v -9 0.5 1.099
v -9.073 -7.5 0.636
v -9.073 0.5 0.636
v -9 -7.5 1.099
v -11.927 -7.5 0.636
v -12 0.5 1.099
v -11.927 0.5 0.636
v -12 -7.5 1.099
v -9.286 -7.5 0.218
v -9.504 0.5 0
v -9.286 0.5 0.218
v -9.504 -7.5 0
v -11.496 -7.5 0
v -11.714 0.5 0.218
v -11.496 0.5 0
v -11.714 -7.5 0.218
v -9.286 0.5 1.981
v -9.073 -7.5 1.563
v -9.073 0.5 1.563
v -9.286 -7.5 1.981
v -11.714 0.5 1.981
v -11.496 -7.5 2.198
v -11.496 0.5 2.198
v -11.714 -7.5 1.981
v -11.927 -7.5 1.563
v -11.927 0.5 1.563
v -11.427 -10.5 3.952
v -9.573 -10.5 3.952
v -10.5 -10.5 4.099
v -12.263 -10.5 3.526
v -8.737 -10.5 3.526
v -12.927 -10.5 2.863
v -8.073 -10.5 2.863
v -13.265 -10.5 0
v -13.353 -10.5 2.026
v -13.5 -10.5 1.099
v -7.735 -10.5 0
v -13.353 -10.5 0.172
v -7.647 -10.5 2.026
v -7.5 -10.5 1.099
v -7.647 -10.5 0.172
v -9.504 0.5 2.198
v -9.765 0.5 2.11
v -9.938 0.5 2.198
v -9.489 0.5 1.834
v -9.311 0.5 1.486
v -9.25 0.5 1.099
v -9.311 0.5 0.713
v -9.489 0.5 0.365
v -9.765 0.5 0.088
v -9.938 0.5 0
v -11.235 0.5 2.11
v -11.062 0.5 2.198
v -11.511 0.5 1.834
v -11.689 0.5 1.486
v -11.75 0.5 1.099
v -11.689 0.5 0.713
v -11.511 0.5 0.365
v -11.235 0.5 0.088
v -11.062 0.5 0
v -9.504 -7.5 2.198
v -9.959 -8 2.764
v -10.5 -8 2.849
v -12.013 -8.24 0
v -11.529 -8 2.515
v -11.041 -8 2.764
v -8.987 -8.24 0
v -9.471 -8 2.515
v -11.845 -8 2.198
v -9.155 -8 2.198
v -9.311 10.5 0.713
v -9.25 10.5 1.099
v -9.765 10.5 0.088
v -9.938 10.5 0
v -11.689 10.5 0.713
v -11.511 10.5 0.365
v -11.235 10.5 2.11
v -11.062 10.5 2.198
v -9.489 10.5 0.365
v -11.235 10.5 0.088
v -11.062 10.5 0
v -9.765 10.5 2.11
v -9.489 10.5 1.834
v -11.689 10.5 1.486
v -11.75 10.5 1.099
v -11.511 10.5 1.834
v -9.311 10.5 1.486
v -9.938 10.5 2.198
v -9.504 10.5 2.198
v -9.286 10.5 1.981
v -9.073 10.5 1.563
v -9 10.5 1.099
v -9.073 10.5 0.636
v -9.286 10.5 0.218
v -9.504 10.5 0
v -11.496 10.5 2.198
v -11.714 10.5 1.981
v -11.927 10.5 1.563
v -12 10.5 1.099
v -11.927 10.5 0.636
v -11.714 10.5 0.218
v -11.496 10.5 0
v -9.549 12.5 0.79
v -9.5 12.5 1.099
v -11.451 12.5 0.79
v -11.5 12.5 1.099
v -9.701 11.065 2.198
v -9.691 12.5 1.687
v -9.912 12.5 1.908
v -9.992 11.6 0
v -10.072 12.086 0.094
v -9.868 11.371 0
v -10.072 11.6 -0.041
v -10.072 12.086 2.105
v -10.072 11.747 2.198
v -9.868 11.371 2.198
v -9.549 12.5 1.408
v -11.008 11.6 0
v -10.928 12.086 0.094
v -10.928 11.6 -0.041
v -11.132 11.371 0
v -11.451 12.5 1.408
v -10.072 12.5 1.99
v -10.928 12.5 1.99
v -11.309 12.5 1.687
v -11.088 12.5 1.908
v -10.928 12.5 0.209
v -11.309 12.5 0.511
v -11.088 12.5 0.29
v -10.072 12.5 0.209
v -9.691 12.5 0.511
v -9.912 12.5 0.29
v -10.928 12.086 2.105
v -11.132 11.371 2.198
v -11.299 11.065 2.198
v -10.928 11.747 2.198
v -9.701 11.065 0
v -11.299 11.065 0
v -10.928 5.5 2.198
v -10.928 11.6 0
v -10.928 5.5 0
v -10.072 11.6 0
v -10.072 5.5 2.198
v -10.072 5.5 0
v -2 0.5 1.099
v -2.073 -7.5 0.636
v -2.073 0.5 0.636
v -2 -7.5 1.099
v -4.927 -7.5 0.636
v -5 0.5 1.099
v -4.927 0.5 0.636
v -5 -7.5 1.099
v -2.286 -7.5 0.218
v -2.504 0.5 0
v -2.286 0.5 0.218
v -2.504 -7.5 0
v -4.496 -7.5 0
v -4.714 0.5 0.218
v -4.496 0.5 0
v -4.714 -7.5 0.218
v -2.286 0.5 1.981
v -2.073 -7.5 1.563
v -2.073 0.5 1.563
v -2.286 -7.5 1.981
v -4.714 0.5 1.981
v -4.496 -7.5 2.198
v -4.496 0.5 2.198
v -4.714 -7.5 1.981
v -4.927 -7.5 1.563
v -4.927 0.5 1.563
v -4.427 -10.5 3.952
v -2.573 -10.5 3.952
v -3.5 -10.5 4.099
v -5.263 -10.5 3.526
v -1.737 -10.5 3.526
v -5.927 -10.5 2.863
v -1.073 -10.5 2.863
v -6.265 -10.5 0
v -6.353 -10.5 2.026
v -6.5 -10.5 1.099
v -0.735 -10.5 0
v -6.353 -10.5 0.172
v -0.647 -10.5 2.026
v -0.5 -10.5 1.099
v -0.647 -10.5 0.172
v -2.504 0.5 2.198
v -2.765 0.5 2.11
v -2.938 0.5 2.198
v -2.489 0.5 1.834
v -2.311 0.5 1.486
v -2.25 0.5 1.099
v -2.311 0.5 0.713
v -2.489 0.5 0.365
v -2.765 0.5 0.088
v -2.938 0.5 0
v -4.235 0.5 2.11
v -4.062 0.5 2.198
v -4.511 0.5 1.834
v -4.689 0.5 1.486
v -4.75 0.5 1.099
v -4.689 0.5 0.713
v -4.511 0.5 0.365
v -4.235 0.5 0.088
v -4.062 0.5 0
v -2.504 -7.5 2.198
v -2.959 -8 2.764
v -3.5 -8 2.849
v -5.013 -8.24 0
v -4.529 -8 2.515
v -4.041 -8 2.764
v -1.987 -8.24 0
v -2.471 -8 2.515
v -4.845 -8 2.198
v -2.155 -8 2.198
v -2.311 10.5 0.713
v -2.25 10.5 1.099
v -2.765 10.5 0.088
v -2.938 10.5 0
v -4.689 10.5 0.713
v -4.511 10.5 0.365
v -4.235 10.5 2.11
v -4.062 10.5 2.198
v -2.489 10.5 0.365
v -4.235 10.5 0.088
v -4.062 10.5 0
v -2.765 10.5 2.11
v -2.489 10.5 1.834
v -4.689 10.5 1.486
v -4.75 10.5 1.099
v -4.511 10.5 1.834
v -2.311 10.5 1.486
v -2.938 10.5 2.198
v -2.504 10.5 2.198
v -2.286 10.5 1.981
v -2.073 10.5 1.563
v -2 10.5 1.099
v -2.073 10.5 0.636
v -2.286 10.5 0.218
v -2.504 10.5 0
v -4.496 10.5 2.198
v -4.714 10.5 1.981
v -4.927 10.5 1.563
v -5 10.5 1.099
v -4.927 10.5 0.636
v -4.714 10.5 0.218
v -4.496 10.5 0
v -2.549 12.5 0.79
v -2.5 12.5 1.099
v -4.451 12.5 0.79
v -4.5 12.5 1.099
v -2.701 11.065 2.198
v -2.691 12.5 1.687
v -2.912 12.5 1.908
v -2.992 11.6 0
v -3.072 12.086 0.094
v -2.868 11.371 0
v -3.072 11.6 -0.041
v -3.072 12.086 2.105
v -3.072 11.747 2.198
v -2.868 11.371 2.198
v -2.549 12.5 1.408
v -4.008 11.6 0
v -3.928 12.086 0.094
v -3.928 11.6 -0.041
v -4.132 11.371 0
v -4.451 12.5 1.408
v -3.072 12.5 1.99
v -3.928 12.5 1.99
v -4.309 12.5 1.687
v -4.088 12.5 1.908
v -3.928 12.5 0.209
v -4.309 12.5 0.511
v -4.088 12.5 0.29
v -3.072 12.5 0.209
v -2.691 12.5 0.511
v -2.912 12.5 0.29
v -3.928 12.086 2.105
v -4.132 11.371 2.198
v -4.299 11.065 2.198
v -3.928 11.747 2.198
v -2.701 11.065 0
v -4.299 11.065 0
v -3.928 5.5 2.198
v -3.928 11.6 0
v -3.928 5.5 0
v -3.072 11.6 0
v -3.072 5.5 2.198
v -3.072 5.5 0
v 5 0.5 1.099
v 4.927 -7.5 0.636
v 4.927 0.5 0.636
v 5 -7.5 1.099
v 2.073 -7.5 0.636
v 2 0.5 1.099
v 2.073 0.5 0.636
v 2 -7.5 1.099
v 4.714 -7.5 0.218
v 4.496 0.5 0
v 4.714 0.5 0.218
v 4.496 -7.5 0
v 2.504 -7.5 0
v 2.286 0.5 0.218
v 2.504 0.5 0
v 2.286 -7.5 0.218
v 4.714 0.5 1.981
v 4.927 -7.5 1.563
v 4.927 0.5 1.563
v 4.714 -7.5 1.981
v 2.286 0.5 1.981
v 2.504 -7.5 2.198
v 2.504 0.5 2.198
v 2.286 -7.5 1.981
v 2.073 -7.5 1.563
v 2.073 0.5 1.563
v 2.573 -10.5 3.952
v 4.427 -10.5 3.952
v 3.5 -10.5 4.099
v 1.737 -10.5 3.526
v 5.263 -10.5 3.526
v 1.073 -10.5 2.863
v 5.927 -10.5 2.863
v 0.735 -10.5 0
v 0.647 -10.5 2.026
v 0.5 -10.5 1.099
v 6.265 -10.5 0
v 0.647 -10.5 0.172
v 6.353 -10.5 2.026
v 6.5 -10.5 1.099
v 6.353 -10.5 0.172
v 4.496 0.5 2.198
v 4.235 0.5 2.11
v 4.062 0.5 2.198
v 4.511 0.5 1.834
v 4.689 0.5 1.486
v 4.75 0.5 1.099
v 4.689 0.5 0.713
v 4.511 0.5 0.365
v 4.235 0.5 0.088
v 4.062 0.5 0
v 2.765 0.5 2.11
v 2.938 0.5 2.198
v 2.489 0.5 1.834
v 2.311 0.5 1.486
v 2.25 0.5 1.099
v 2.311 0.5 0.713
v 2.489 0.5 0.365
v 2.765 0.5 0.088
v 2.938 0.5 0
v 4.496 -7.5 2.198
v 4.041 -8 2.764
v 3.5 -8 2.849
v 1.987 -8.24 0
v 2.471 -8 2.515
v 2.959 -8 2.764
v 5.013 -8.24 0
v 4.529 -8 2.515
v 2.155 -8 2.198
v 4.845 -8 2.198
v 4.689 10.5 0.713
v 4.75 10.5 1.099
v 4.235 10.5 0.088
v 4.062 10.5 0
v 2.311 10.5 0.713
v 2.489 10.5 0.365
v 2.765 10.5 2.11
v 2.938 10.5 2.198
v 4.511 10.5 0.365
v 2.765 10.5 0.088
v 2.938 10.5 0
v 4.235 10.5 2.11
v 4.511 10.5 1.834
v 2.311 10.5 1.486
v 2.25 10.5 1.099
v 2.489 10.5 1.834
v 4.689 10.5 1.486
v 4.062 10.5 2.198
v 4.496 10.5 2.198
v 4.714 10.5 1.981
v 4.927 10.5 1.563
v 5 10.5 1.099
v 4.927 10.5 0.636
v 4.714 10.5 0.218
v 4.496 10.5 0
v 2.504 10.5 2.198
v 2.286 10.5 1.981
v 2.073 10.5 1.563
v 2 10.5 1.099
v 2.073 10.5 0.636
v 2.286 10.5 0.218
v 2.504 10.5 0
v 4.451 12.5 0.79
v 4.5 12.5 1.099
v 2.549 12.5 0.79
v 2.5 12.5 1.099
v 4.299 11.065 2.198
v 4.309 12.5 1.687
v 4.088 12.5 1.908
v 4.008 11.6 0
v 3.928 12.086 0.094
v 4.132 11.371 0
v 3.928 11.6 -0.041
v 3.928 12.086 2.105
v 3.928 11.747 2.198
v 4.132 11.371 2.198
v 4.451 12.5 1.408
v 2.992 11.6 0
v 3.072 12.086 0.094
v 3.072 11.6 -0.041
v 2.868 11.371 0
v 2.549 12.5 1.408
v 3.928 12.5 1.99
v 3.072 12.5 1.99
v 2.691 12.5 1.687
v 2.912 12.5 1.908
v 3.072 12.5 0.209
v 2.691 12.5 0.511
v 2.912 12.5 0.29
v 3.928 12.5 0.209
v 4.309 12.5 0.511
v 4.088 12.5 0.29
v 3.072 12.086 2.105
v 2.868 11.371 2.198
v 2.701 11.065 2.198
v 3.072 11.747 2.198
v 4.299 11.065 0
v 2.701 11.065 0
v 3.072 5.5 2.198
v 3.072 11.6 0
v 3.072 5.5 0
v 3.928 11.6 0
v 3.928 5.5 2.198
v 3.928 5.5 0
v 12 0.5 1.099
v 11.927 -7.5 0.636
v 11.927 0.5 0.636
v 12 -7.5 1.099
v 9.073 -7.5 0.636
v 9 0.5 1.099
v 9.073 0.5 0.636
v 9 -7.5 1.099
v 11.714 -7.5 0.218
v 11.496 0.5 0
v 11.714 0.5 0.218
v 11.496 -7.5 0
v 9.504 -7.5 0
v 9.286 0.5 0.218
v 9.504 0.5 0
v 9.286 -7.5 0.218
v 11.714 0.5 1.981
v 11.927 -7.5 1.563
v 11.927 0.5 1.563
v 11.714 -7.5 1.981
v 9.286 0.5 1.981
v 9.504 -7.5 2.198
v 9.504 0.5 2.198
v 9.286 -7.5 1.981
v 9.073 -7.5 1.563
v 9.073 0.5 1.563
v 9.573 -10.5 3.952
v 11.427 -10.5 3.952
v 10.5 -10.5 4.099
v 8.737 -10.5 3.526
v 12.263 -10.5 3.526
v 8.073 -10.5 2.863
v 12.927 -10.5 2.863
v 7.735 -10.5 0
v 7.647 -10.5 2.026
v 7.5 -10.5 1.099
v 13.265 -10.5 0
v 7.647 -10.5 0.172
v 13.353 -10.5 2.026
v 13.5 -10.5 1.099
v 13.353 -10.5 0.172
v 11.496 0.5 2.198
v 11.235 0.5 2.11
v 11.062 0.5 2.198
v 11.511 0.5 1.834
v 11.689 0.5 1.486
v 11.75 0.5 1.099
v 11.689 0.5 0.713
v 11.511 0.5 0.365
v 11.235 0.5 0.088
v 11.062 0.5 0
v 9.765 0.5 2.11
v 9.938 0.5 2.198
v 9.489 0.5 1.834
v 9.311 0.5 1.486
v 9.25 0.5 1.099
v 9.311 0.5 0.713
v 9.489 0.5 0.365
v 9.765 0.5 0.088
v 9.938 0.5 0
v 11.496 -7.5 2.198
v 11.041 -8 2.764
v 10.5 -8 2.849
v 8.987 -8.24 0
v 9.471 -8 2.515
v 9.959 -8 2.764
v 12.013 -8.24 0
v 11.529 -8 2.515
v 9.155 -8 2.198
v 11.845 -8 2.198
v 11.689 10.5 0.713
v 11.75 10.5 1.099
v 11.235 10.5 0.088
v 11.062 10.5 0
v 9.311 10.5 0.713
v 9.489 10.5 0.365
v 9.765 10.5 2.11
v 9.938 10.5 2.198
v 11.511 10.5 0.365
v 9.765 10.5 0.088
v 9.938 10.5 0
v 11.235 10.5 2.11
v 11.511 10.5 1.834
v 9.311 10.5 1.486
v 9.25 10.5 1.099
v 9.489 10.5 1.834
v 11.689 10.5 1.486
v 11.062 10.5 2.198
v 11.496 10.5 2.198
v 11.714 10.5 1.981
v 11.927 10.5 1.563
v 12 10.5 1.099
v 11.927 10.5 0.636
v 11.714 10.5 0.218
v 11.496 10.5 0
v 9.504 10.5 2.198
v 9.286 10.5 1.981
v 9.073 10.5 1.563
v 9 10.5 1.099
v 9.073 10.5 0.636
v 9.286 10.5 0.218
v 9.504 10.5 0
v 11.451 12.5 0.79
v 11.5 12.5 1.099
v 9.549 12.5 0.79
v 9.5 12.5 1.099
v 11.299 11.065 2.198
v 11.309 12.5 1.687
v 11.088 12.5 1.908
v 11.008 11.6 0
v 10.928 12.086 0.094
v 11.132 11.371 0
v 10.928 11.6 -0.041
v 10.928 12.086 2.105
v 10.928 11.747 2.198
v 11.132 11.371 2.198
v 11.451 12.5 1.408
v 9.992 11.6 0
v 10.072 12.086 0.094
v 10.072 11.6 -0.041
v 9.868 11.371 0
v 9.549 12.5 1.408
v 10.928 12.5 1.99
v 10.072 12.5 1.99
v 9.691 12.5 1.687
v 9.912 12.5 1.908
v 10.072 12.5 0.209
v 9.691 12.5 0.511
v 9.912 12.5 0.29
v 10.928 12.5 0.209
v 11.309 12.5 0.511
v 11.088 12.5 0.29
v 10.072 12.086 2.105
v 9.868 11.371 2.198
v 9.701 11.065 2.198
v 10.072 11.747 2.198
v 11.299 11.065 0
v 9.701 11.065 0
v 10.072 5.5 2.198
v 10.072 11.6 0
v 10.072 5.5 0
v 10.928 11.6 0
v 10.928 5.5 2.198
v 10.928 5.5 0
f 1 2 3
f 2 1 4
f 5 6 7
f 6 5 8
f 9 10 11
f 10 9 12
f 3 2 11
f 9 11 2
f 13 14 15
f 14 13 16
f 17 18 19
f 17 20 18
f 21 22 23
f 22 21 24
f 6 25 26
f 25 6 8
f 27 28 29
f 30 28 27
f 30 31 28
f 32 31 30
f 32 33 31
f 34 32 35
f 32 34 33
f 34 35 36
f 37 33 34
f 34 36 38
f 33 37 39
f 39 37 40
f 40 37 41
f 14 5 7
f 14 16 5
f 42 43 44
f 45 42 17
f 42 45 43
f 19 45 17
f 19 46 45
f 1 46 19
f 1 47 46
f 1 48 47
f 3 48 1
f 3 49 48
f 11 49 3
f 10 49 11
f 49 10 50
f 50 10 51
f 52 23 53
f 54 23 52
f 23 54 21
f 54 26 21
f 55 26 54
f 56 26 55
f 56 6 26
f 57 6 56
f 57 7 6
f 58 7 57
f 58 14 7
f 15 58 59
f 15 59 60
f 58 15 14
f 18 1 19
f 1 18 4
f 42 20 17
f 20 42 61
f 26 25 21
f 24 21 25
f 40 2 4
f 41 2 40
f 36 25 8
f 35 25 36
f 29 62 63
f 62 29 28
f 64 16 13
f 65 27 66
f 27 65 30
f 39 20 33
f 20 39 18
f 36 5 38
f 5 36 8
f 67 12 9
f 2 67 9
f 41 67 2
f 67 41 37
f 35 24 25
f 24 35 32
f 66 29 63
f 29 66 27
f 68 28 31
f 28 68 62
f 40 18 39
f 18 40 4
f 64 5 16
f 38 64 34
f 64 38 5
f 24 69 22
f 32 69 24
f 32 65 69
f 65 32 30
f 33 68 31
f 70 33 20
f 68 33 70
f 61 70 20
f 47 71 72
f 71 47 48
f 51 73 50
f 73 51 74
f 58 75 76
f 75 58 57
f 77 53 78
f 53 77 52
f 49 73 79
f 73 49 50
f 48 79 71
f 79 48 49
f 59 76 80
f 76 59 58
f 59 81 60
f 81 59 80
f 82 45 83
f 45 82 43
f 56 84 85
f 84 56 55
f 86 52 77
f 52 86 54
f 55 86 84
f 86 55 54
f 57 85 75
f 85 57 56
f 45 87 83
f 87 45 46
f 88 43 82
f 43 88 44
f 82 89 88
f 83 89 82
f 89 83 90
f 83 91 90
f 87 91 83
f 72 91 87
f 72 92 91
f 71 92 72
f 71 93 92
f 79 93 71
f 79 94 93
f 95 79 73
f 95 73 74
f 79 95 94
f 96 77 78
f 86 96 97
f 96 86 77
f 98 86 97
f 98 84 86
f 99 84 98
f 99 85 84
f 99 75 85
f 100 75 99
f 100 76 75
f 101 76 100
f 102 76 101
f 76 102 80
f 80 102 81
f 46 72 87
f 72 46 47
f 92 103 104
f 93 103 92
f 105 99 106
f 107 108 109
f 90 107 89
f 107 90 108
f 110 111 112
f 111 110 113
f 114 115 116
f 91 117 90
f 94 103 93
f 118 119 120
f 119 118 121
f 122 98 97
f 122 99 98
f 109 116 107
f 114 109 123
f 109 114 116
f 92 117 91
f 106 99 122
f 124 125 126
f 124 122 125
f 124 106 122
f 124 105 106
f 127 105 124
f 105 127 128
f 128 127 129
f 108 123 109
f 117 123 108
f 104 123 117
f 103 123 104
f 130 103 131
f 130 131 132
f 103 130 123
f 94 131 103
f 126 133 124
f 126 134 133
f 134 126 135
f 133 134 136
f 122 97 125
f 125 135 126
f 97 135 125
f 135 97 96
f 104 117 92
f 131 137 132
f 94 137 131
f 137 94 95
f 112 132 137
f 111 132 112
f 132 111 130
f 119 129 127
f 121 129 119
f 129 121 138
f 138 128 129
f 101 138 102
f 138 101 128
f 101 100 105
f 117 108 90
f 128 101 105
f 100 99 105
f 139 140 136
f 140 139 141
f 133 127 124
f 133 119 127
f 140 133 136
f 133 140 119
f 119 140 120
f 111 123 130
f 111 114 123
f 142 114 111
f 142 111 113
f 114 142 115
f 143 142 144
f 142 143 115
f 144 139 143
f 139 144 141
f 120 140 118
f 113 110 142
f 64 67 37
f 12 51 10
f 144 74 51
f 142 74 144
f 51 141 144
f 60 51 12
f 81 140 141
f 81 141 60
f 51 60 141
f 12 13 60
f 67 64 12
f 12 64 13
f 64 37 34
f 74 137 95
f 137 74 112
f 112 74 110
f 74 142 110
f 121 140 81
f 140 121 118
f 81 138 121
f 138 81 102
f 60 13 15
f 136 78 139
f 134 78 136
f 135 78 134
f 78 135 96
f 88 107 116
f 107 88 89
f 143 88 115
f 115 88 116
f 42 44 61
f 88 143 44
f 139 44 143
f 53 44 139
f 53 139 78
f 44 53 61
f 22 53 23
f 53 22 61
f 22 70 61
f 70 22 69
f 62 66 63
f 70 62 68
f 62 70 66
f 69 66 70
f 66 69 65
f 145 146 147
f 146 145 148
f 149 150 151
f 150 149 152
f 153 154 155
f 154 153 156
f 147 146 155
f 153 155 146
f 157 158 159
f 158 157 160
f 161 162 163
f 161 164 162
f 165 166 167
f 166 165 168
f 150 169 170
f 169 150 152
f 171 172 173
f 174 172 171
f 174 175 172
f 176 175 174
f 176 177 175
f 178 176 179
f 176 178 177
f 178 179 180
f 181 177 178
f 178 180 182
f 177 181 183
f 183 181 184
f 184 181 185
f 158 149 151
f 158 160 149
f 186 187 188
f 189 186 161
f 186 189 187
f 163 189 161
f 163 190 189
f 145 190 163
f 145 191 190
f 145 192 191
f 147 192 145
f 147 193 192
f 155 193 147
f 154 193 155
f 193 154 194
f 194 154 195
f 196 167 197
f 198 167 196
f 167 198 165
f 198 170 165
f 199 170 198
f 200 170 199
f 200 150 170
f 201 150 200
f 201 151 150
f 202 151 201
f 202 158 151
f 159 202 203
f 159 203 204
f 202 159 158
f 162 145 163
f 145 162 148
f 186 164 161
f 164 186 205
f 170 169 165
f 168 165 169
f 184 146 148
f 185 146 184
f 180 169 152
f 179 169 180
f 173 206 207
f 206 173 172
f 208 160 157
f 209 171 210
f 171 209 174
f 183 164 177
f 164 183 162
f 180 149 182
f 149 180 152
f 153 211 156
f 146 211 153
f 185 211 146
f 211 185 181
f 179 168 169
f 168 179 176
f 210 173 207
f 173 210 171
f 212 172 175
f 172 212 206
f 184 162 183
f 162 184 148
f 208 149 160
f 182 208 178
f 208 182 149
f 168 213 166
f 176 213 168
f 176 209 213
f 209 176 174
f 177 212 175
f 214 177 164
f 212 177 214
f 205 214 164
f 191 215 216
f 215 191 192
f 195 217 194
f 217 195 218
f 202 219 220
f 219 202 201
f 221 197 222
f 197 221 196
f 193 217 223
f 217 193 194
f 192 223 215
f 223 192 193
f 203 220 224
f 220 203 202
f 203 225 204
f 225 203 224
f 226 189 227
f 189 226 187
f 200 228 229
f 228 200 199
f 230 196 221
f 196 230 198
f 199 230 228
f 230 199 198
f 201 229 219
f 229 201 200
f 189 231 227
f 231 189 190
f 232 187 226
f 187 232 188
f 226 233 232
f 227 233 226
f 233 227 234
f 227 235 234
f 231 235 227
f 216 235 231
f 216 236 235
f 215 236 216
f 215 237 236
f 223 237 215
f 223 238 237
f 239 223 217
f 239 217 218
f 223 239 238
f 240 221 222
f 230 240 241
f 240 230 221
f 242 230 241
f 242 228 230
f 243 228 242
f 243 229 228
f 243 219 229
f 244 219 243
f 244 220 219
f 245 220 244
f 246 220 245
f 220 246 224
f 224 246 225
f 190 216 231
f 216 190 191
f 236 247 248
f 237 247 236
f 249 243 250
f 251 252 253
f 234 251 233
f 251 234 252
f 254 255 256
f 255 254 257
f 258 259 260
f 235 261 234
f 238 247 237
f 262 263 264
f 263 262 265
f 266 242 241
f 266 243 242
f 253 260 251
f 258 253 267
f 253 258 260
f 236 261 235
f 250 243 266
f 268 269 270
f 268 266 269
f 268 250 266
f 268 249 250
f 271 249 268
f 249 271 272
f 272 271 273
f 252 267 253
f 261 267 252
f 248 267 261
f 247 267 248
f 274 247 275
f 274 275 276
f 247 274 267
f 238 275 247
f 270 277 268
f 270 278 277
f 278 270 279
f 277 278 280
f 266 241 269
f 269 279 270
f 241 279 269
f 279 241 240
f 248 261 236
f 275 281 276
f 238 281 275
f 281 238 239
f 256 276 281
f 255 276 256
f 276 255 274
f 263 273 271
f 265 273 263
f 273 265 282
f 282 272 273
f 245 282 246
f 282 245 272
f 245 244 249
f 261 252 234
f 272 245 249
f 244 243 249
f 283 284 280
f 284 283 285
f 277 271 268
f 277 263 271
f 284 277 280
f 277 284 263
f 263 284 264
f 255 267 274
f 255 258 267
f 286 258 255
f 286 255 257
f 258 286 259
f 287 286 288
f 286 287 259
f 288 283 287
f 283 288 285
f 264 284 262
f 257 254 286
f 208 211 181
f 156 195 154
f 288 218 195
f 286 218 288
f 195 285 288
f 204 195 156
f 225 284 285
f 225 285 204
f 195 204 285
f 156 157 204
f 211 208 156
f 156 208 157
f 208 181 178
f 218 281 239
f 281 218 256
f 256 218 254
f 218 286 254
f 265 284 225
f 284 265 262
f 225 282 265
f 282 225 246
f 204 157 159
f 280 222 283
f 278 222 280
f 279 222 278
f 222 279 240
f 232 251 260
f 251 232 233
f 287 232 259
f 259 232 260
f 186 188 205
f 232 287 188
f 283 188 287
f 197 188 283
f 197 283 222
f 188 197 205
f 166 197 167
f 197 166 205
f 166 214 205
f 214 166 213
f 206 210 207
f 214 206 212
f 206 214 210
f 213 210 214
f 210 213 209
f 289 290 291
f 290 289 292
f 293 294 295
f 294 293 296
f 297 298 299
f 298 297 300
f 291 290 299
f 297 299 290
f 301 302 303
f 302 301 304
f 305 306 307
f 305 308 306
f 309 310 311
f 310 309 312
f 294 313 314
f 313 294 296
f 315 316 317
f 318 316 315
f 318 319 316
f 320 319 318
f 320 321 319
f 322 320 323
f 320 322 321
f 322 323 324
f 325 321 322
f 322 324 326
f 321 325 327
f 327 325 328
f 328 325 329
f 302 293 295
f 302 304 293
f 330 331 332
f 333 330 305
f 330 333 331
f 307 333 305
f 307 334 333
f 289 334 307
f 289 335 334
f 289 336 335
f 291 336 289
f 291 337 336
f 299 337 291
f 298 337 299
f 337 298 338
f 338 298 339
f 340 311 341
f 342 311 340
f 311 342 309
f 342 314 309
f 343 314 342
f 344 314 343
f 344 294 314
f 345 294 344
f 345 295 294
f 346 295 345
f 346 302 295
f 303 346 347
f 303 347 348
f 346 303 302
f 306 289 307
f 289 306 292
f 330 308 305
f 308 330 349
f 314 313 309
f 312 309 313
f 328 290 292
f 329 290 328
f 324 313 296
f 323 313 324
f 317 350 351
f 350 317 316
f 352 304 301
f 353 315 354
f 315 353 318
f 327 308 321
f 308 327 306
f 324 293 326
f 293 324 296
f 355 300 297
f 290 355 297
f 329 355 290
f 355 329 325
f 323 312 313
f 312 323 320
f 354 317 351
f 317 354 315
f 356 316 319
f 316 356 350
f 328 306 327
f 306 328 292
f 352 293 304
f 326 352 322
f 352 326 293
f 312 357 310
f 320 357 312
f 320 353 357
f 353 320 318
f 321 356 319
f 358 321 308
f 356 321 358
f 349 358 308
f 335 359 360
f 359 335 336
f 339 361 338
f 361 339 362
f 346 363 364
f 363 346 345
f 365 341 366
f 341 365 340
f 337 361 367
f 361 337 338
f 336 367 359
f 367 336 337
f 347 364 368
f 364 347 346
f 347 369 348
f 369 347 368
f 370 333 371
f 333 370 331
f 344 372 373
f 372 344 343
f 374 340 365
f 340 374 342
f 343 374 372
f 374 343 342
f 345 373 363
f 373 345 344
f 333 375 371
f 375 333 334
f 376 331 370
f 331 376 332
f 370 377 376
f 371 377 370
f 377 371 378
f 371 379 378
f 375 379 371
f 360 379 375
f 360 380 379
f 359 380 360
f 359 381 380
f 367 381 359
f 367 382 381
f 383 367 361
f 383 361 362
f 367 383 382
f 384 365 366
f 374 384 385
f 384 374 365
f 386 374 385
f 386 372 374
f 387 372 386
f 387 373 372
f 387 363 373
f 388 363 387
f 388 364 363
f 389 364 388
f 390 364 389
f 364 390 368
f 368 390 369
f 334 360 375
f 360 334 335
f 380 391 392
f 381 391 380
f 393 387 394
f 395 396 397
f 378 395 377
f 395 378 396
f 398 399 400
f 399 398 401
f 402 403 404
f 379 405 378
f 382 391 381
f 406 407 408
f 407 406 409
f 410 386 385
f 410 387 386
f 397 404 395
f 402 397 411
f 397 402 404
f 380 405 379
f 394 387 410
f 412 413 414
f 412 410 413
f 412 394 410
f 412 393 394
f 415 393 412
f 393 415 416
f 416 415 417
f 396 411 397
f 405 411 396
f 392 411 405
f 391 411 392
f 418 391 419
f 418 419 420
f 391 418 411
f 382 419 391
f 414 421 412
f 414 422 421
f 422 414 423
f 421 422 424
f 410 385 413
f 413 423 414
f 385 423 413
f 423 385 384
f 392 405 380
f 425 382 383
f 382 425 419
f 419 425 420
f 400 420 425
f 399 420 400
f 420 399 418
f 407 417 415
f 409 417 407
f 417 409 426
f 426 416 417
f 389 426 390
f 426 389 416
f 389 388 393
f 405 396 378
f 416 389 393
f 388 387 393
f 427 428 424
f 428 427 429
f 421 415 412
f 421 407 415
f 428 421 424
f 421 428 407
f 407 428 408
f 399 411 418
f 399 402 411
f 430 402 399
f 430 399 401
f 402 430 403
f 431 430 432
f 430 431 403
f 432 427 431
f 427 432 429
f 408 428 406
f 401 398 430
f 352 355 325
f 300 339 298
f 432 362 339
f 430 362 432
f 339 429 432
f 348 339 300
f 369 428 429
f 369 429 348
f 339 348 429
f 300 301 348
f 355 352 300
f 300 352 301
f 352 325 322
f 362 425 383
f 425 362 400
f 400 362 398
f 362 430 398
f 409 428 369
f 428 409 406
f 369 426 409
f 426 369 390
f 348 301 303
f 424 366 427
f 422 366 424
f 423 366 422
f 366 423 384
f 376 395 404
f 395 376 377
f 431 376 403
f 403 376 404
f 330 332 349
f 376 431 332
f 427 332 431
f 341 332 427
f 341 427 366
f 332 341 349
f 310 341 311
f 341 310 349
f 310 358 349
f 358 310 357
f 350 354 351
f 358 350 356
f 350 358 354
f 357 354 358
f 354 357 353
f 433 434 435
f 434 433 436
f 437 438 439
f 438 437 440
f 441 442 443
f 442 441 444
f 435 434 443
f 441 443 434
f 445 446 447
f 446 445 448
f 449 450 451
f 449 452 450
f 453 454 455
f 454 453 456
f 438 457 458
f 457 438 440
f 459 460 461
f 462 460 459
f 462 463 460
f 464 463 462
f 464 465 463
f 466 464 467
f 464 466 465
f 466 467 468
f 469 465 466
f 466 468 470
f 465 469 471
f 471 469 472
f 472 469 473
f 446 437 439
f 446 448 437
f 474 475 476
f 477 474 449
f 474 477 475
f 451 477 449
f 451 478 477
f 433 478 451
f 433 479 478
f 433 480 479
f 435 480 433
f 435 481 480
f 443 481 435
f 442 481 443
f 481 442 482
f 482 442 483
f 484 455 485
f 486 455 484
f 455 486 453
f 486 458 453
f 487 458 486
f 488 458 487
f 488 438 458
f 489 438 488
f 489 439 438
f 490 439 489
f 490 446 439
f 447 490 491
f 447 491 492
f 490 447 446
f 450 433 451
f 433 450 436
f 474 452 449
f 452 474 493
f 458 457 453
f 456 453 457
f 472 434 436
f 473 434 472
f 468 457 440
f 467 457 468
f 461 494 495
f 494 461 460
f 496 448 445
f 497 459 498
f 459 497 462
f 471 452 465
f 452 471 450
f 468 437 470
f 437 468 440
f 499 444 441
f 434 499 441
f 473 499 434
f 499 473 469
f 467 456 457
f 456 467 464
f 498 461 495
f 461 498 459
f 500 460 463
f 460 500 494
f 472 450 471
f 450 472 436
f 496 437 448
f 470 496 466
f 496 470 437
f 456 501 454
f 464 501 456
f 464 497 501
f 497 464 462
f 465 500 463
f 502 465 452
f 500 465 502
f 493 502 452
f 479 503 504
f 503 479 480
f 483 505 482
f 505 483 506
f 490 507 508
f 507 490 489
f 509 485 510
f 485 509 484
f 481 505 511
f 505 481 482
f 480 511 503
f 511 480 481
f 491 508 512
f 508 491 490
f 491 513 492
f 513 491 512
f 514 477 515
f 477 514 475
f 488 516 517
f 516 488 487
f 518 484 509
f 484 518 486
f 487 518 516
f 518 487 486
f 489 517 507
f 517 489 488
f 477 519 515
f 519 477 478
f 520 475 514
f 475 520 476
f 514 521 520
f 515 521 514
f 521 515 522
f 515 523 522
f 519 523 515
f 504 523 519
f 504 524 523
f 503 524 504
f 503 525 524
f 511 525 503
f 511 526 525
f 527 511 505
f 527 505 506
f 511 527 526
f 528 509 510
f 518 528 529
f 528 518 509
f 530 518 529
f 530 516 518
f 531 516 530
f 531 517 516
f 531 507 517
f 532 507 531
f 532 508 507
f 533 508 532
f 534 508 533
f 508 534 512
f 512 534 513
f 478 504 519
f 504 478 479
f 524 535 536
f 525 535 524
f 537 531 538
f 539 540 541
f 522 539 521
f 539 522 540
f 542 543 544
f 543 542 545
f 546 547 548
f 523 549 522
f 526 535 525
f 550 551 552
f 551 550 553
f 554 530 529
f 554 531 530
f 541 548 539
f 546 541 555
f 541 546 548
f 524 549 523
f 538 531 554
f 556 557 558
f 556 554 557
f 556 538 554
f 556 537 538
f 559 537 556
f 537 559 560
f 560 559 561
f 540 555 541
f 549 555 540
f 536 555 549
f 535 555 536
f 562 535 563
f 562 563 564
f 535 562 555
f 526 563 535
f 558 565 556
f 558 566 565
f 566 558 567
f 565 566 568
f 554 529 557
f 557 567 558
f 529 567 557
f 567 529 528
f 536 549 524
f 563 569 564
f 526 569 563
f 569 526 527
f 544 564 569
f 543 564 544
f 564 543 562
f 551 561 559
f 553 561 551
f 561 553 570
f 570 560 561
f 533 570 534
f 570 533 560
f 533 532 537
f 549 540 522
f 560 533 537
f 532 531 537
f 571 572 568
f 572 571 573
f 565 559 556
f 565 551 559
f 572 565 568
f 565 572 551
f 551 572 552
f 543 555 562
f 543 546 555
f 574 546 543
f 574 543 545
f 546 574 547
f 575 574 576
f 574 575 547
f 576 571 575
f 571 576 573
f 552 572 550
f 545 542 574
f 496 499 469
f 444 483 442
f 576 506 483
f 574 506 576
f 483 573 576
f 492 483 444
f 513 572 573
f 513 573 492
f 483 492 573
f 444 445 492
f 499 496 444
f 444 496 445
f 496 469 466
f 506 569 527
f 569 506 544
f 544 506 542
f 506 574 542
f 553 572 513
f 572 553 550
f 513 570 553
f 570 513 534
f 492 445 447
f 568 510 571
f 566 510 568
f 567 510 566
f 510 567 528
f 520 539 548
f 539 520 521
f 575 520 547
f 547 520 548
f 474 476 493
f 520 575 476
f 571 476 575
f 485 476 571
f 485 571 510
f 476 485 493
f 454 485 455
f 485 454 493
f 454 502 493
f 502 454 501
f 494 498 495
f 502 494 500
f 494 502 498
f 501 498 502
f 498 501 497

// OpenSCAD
// Compact Board clip
// For Raspberry Pi Zero Test Controller (Brian Khuu 2019)
// Remixed from https://www.thingiverse.com/thing:1520316/files Board clip by robidouille Apr 27, 2016

//hole = 2.8; // Arduino
hole = 2.5; // Raspberry Pi

marginT = 0.5; // Controls the size of the grip
marginB = marginT;
skirt = 3;
rise = 10;
bump = 1;
thick = 11;

slotAngle = 20;
slot = hole * sin(slotAngle);
shave = hole * (1 - cos(slotAngle));

eps = 0.1;

Repeat(4, 1, hole + marginB + skirt + 1, rise + rise + 1) translate([0, 0, hole/2 - shave]) rotate([-90, 0, 0]) HoleClip();

module Repeat(count_x, count_y, size_x, size_y) {
	for (i = [0 : count_x - 1]) {
		for (j = [0 : count_y - 1]) {
			translate([(i - (count_x - 1) / 2) * size_x, (j - (count_y - 1) / 2) * size_y - size_y/2, 0])
			children();
		}
	}
}

module HoleClip() {
    difference() {
        union() {
            cylinder( d = hole + marginB, h = thick, $fn=20);
            cylinder( d1 = hole + marginB + skirt, d2 = hole + marginB - skirt, h = skirt * 2, $fn=20);
            translate([0, 0, thick - eps])
              cylinder(d = hole, h = rise + eps, $fn=20);
            translate([0, 0, rise + thick]) 
              cylinder(d1 = hole + marginT, d2 = hole - marginT, h = bump * 2, $fn=20);
        }
        
        // Slot Cut
        slot_depth = 5+bump*2; // Adjust based on material
        translate([-slot / 2, -(hole + marginB + eps)/2, rise + thick + bump * 2 - slot_depth]) cube([slot, hole + marginB + eps, slot_depth]);
        
        // Top and bottom cut
        translate([-(hole + marginB + skirt)/2, hole/2 - shave, -eps]) cube([hole + marginB + skirt, marginB + skirt, rise + rise + eps * 2+bump*2]);
        translate([-(hole + marginB + skirt)/2, -hole/2 + shave - (marginB + skirt), rise/4]) cube([hole + marginB + skirt, marginB + skirt, rise +  rise + eps * 2 + bump*2]);
    }
}
